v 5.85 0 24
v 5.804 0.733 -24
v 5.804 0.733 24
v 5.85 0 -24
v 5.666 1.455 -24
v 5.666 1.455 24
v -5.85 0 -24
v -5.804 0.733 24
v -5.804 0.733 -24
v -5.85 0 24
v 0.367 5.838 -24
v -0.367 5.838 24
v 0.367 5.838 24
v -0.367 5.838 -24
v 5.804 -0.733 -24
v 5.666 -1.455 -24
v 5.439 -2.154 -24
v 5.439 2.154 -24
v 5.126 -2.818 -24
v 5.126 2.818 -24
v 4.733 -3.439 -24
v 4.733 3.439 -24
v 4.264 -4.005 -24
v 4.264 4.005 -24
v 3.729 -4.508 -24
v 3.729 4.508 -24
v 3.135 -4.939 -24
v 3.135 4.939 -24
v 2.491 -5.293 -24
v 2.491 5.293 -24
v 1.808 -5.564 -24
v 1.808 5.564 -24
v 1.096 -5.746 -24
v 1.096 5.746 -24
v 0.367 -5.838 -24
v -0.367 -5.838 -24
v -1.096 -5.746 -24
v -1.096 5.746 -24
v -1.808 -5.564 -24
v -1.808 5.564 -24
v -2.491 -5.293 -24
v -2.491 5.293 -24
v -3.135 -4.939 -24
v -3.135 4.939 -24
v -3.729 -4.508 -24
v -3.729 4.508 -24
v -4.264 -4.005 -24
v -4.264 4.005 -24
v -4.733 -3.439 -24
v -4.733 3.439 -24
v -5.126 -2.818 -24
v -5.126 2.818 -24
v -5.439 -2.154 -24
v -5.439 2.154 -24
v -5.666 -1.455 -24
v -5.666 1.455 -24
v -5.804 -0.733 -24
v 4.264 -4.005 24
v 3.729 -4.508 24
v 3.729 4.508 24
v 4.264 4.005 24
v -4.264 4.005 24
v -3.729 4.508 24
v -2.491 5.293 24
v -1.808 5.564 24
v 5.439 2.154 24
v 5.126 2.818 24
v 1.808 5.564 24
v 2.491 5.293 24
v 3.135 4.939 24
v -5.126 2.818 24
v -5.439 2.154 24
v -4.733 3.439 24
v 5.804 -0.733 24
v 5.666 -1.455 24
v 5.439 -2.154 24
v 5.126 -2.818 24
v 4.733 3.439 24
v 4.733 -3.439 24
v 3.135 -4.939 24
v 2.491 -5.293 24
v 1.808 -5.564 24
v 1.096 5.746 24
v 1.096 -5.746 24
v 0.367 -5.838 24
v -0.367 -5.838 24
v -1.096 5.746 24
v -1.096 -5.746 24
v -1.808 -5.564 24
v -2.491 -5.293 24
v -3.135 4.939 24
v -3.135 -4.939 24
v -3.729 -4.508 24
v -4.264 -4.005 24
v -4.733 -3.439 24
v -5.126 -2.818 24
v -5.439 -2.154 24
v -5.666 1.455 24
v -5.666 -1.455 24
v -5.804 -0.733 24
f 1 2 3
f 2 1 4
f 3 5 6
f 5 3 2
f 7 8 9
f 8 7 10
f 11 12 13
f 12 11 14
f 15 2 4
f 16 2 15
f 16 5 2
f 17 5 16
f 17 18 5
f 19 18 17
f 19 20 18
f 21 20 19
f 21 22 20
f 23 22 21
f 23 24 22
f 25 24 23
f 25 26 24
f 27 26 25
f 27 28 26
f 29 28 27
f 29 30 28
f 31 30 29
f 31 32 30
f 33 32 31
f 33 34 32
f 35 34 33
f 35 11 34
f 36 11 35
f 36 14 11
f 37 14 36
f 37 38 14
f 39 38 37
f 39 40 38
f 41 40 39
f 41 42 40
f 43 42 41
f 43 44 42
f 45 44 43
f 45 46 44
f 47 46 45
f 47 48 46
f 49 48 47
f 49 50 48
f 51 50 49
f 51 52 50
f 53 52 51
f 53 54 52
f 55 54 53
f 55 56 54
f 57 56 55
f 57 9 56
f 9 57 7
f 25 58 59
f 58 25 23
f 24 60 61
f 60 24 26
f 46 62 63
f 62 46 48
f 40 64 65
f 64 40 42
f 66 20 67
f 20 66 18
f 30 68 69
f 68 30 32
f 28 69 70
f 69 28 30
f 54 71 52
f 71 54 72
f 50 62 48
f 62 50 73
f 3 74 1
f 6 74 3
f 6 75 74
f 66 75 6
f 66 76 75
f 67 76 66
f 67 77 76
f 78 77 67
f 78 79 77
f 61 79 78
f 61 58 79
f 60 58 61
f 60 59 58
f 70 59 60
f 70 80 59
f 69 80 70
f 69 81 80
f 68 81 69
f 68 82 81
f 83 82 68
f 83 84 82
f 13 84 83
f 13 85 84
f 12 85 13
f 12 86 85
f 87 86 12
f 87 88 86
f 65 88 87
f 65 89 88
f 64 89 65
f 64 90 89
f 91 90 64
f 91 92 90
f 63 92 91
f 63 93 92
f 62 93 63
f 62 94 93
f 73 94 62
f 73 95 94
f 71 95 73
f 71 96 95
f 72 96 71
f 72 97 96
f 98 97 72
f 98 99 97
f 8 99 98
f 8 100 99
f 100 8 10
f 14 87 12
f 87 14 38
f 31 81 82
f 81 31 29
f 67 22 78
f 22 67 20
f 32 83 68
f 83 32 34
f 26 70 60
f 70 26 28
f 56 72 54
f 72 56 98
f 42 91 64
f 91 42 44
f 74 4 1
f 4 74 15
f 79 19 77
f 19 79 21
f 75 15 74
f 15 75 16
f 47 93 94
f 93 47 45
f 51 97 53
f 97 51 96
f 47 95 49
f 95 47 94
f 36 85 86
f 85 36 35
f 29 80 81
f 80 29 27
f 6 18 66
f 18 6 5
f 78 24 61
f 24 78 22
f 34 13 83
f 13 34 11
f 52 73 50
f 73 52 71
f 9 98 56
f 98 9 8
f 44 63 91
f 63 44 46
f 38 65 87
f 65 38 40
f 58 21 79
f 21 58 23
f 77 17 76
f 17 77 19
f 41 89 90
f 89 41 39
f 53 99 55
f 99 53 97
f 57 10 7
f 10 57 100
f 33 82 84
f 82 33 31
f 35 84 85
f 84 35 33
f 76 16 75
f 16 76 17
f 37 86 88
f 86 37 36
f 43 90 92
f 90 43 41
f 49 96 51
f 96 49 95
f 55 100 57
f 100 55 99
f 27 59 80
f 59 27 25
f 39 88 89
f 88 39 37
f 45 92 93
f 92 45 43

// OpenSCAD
$fn = 50;


difference() {
	union() {
		translate(v = [0, 0, -24.0000000000]) {
			cylinder(h = 48, r = 5.8500000000);
		}
	}
	union() {
		translate(v = [0, 0, -100.0000000000]) {
			cylinder(h = 200, r = 0);
		}
	}
}
